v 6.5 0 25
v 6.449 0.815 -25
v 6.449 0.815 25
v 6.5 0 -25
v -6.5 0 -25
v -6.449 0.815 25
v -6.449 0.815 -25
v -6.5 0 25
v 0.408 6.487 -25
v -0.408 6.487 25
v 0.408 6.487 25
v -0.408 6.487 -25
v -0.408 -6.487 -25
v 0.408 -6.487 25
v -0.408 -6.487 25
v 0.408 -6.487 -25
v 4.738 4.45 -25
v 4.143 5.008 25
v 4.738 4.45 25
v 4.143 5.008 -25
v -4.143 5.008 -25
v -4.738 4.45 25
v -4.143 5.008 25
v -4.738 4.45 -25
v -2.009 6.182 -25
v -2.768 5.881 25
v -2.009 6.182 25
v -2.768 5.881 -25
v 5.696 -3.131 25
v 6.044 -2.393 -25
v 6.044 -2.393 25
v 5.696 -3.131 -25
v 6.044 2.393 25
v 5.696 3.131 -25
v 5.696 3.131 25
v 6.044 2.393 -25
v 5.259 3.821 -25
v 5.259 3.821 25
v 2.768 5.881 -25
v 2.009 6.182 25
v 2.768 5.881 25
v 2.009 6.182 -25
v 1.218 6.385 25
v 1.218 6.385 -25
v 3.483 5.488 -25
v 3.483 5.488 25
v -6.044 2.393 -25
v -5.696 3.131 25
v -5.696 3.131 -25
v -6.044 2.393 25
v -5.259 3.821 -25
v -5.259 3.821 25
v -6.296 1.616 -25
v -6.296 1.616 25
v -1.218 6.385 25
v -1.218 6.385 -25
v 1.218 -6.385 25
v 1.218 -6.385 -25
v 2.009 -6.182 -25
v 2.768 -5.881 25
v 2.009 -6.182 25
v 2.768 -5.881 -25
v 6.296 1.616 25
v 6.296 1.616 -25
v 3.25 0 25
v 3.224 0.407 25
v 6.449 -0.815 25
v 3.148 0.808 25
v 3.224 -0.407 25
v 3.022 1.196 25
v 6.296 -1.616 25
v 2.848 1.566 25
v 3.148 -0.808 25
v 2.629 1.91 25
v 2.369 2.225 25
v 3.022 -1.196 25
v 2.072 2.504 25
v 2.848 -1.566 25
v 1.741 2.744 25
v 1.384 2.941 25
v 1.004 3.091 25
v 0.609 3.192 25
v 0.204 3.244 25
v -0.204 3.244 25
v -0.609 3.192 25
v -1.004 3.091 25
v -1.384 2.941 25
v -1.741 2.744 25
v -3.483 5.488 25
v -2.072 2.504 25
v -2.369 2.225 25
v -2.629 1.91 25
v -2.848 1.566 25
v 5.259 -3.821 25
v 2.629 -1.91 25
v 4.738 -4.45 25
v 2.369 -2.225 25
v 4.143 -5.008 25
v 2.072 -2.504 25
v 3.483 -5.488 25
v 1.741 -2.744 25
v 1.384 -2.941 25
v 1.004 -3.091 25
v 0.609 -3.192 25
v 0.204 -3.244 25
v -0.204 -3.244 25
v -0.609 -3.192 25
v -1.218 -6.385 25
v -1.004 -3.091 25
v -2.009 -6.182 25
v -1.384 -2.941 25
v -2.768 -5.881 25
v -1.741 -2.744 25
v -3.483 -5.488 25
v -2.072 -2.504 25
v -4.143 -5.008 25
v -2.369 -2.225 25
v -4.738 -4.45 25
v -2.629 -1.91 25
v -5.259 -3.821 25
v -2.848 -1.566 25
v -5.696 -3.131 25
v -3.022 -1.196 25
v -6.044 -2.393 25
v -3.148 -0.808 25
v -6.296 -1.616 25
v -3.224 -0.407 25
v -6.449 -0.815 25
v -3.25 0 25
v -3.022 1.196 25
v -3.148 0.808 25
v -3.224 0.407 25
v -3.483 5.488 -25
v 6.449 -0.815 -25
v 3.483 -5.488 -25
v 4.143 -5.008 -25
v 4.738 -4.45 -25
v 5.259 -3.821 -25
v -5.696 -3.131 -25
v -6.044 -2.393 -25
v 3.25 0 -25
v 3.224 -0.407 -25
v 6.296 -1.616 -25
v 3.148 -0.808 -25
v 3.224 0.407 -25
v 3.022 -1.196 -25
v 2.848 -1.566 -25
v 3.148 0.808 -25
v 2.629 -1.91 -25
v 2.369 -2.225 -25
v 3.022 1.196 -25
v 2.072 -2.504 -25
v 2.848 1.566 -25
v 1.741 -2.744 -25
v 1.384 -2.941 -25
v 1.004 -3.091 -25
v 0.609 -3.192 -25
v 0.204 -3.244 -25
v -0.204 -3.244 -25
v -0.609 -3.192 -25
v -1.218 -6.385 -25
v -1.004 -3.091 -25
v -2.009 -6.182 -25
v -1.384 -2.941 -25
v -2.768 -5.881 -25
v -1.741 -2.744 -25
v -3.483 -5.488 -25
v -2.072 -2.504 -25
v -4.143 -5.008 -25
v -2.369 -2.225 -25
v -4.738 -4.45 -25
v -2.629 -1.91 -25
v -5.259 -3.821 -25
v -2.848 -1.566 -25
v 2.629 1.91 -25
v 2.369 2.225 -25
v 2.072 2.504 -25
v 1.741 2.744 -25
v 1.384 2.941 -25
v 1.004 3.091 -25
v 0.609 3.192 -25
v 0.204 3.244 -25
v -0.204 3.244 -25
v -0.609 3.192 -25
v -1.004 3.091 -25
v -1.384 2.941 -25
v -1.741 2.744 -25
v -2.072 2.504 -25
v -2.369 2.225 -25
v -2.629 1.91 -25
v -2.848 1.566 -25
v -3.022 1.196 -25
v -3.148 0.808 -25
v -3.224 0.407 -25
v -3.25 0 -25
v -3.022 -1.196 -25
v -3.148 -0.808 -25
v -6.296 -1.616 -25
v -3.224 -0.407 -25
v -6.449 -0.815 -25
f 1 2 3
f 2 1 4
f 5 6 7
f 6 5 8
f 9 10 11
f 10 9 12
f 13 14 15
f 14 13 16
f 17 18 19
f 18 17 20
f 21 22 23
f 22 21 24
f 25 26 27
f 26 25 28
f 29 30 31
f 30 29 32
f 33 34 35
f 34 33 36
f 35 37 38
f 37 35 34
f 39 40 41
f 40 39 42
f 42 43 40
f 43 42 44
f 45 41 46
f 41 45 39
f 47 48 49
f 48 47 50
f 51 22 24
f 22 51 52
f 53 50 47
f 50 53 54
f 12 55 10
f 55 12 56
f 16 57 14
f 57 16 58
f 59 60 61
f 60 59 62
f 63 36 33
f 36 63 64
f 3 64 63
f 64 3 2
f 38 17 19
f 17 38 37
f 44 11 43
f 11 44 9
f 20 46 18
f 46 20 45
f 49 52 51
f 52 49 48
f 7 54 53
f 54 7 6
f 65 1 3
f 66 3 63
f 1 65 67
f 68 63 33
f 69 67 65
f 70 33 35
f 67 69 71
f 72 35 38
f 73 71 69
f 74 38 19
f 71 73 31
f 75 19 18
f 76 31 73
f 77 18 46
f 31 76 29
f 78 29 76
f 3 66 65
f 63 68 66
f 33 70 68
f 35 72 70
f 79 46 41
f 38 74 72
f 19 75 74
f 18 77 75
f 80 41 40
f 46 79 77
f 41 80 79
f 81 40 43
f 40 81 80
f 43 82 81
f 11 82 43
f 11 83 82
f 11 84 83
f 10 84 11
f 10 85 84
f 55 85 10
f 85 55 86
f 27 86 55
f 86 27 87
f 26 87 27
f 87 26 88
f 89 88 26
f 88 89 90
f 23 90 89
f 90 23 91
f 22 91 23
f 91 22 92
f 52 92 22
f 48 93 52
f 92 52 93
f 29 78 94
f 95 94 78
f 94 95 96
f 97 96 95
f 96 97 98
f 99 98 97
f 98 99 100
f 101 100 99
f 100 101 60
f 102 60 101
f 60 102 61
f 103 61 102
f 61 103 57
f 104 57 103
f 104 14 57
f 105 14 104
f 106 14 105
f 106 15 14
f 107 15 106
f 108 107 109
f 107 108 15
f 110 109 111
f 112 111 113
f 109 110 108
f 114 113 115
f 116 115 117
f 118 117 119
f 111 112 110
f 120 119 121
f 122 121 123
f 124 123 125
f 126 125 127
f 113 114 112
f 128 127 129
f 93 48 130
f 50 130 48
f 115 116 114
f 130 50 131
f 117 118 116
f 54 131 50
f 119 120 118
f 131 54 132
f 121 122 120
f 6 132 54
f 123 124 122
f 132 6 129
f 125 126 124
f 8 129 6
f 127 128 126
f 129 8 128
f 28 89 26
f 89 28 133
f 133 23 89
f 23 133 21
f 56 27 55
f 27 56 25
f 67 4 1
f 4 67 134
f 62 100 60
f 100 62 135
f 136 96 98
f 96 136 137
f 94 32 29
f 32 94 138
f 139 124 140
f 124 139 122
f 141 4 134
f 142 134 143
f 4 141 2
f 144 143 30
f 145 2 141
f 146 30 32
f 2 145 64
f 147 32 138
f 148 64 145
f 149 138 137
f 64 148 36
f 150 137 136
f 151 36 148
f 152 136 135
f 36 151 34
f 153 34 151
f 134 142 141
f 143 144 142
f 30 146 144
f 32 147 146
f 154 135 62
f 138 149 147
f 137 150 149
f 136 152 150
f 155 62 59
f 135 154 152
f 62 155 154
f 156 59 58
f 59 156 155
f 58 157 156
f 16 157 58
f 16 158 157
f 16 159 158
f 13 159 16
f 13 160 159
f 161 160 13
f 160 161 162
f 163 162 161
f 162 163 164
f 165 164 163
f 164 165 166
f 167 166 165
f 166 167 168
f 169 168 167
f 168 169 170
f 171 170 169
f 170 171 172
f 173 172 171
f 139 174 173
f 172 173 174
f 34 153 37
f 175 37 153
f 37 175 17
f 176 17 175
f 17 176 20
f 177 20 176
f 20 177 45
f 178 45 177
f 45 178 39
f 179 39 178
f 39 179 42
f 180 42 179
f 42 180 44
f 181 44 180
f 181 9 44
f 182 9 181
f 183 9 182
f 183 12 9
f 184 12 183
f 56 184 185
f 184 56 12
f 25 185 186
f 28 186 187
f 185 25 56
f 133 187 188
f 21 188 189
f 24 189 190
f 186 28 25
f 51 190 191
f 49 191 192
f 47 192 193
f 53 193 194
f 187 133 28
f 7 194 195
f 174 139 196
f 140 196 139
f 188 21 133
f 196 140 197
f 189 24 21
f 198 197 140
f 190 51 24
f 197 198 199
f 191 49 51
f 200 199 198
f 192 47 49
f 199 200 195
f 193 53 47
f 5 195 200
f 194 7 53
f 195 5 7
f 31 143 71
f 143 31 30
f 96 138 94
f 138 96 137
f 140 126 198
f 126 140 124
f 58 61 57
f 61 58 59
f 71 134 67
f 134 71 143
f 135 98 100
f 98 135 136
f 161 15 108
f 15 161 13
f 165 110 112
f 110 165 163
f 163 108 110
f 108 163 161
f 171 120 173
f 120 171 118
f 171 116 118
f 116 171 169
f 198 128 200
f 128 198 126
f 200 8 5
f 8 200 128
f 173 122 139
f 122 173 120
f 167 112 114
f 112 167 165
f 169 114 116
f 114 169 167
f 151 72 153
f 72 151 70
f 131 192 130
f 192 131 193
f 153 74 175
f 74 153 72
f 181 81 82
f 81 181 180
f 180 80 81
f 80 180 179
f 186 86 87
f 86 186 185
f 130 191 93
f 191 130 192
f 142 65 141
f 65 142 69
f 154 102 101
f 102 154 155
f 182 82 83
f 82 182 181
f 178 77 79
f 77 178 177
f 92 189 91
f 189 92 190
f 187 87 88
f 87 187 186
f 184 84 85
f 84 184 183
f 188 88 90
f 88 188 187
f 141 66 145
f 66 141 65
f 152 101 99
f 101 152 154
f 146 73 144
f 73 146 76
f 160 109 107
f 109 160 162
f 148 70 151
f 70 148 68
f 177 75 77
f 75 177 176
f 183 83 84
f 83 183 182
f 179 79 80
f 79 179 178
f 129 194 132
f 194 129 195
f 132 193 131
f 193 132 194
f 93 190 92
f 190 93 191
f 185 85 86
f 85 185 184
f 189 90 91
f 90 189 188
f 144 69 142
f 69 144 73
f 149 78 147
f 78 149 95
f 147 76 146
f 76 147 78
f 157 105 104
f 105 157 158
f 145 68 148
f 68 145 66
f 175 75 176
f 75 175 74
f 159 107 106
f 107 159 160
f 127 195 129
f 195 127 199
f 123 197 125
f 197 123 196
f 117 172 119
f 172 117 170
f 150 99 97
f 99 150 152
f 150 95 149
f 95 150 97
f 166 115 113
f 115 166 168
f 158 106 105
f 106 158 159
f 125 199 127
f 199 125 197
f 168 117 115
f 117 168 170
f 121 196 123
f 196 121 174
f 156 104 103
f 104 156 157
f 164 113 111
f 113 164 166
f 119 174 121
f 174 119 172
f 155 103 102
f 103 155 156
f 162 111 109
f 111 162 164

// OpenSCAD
$fn = 50;


difference() {
	union() {
		translate(v = [0, 0, -25.0000000000]) {
			cylinder(h = 50, r = 6.5000000000);
		}
	}
	union() {
		translate(v = [0, 0, -100.0000000000]) {
			cylinder(h = 200, r = 3.2500000000);
		}
	}
}
